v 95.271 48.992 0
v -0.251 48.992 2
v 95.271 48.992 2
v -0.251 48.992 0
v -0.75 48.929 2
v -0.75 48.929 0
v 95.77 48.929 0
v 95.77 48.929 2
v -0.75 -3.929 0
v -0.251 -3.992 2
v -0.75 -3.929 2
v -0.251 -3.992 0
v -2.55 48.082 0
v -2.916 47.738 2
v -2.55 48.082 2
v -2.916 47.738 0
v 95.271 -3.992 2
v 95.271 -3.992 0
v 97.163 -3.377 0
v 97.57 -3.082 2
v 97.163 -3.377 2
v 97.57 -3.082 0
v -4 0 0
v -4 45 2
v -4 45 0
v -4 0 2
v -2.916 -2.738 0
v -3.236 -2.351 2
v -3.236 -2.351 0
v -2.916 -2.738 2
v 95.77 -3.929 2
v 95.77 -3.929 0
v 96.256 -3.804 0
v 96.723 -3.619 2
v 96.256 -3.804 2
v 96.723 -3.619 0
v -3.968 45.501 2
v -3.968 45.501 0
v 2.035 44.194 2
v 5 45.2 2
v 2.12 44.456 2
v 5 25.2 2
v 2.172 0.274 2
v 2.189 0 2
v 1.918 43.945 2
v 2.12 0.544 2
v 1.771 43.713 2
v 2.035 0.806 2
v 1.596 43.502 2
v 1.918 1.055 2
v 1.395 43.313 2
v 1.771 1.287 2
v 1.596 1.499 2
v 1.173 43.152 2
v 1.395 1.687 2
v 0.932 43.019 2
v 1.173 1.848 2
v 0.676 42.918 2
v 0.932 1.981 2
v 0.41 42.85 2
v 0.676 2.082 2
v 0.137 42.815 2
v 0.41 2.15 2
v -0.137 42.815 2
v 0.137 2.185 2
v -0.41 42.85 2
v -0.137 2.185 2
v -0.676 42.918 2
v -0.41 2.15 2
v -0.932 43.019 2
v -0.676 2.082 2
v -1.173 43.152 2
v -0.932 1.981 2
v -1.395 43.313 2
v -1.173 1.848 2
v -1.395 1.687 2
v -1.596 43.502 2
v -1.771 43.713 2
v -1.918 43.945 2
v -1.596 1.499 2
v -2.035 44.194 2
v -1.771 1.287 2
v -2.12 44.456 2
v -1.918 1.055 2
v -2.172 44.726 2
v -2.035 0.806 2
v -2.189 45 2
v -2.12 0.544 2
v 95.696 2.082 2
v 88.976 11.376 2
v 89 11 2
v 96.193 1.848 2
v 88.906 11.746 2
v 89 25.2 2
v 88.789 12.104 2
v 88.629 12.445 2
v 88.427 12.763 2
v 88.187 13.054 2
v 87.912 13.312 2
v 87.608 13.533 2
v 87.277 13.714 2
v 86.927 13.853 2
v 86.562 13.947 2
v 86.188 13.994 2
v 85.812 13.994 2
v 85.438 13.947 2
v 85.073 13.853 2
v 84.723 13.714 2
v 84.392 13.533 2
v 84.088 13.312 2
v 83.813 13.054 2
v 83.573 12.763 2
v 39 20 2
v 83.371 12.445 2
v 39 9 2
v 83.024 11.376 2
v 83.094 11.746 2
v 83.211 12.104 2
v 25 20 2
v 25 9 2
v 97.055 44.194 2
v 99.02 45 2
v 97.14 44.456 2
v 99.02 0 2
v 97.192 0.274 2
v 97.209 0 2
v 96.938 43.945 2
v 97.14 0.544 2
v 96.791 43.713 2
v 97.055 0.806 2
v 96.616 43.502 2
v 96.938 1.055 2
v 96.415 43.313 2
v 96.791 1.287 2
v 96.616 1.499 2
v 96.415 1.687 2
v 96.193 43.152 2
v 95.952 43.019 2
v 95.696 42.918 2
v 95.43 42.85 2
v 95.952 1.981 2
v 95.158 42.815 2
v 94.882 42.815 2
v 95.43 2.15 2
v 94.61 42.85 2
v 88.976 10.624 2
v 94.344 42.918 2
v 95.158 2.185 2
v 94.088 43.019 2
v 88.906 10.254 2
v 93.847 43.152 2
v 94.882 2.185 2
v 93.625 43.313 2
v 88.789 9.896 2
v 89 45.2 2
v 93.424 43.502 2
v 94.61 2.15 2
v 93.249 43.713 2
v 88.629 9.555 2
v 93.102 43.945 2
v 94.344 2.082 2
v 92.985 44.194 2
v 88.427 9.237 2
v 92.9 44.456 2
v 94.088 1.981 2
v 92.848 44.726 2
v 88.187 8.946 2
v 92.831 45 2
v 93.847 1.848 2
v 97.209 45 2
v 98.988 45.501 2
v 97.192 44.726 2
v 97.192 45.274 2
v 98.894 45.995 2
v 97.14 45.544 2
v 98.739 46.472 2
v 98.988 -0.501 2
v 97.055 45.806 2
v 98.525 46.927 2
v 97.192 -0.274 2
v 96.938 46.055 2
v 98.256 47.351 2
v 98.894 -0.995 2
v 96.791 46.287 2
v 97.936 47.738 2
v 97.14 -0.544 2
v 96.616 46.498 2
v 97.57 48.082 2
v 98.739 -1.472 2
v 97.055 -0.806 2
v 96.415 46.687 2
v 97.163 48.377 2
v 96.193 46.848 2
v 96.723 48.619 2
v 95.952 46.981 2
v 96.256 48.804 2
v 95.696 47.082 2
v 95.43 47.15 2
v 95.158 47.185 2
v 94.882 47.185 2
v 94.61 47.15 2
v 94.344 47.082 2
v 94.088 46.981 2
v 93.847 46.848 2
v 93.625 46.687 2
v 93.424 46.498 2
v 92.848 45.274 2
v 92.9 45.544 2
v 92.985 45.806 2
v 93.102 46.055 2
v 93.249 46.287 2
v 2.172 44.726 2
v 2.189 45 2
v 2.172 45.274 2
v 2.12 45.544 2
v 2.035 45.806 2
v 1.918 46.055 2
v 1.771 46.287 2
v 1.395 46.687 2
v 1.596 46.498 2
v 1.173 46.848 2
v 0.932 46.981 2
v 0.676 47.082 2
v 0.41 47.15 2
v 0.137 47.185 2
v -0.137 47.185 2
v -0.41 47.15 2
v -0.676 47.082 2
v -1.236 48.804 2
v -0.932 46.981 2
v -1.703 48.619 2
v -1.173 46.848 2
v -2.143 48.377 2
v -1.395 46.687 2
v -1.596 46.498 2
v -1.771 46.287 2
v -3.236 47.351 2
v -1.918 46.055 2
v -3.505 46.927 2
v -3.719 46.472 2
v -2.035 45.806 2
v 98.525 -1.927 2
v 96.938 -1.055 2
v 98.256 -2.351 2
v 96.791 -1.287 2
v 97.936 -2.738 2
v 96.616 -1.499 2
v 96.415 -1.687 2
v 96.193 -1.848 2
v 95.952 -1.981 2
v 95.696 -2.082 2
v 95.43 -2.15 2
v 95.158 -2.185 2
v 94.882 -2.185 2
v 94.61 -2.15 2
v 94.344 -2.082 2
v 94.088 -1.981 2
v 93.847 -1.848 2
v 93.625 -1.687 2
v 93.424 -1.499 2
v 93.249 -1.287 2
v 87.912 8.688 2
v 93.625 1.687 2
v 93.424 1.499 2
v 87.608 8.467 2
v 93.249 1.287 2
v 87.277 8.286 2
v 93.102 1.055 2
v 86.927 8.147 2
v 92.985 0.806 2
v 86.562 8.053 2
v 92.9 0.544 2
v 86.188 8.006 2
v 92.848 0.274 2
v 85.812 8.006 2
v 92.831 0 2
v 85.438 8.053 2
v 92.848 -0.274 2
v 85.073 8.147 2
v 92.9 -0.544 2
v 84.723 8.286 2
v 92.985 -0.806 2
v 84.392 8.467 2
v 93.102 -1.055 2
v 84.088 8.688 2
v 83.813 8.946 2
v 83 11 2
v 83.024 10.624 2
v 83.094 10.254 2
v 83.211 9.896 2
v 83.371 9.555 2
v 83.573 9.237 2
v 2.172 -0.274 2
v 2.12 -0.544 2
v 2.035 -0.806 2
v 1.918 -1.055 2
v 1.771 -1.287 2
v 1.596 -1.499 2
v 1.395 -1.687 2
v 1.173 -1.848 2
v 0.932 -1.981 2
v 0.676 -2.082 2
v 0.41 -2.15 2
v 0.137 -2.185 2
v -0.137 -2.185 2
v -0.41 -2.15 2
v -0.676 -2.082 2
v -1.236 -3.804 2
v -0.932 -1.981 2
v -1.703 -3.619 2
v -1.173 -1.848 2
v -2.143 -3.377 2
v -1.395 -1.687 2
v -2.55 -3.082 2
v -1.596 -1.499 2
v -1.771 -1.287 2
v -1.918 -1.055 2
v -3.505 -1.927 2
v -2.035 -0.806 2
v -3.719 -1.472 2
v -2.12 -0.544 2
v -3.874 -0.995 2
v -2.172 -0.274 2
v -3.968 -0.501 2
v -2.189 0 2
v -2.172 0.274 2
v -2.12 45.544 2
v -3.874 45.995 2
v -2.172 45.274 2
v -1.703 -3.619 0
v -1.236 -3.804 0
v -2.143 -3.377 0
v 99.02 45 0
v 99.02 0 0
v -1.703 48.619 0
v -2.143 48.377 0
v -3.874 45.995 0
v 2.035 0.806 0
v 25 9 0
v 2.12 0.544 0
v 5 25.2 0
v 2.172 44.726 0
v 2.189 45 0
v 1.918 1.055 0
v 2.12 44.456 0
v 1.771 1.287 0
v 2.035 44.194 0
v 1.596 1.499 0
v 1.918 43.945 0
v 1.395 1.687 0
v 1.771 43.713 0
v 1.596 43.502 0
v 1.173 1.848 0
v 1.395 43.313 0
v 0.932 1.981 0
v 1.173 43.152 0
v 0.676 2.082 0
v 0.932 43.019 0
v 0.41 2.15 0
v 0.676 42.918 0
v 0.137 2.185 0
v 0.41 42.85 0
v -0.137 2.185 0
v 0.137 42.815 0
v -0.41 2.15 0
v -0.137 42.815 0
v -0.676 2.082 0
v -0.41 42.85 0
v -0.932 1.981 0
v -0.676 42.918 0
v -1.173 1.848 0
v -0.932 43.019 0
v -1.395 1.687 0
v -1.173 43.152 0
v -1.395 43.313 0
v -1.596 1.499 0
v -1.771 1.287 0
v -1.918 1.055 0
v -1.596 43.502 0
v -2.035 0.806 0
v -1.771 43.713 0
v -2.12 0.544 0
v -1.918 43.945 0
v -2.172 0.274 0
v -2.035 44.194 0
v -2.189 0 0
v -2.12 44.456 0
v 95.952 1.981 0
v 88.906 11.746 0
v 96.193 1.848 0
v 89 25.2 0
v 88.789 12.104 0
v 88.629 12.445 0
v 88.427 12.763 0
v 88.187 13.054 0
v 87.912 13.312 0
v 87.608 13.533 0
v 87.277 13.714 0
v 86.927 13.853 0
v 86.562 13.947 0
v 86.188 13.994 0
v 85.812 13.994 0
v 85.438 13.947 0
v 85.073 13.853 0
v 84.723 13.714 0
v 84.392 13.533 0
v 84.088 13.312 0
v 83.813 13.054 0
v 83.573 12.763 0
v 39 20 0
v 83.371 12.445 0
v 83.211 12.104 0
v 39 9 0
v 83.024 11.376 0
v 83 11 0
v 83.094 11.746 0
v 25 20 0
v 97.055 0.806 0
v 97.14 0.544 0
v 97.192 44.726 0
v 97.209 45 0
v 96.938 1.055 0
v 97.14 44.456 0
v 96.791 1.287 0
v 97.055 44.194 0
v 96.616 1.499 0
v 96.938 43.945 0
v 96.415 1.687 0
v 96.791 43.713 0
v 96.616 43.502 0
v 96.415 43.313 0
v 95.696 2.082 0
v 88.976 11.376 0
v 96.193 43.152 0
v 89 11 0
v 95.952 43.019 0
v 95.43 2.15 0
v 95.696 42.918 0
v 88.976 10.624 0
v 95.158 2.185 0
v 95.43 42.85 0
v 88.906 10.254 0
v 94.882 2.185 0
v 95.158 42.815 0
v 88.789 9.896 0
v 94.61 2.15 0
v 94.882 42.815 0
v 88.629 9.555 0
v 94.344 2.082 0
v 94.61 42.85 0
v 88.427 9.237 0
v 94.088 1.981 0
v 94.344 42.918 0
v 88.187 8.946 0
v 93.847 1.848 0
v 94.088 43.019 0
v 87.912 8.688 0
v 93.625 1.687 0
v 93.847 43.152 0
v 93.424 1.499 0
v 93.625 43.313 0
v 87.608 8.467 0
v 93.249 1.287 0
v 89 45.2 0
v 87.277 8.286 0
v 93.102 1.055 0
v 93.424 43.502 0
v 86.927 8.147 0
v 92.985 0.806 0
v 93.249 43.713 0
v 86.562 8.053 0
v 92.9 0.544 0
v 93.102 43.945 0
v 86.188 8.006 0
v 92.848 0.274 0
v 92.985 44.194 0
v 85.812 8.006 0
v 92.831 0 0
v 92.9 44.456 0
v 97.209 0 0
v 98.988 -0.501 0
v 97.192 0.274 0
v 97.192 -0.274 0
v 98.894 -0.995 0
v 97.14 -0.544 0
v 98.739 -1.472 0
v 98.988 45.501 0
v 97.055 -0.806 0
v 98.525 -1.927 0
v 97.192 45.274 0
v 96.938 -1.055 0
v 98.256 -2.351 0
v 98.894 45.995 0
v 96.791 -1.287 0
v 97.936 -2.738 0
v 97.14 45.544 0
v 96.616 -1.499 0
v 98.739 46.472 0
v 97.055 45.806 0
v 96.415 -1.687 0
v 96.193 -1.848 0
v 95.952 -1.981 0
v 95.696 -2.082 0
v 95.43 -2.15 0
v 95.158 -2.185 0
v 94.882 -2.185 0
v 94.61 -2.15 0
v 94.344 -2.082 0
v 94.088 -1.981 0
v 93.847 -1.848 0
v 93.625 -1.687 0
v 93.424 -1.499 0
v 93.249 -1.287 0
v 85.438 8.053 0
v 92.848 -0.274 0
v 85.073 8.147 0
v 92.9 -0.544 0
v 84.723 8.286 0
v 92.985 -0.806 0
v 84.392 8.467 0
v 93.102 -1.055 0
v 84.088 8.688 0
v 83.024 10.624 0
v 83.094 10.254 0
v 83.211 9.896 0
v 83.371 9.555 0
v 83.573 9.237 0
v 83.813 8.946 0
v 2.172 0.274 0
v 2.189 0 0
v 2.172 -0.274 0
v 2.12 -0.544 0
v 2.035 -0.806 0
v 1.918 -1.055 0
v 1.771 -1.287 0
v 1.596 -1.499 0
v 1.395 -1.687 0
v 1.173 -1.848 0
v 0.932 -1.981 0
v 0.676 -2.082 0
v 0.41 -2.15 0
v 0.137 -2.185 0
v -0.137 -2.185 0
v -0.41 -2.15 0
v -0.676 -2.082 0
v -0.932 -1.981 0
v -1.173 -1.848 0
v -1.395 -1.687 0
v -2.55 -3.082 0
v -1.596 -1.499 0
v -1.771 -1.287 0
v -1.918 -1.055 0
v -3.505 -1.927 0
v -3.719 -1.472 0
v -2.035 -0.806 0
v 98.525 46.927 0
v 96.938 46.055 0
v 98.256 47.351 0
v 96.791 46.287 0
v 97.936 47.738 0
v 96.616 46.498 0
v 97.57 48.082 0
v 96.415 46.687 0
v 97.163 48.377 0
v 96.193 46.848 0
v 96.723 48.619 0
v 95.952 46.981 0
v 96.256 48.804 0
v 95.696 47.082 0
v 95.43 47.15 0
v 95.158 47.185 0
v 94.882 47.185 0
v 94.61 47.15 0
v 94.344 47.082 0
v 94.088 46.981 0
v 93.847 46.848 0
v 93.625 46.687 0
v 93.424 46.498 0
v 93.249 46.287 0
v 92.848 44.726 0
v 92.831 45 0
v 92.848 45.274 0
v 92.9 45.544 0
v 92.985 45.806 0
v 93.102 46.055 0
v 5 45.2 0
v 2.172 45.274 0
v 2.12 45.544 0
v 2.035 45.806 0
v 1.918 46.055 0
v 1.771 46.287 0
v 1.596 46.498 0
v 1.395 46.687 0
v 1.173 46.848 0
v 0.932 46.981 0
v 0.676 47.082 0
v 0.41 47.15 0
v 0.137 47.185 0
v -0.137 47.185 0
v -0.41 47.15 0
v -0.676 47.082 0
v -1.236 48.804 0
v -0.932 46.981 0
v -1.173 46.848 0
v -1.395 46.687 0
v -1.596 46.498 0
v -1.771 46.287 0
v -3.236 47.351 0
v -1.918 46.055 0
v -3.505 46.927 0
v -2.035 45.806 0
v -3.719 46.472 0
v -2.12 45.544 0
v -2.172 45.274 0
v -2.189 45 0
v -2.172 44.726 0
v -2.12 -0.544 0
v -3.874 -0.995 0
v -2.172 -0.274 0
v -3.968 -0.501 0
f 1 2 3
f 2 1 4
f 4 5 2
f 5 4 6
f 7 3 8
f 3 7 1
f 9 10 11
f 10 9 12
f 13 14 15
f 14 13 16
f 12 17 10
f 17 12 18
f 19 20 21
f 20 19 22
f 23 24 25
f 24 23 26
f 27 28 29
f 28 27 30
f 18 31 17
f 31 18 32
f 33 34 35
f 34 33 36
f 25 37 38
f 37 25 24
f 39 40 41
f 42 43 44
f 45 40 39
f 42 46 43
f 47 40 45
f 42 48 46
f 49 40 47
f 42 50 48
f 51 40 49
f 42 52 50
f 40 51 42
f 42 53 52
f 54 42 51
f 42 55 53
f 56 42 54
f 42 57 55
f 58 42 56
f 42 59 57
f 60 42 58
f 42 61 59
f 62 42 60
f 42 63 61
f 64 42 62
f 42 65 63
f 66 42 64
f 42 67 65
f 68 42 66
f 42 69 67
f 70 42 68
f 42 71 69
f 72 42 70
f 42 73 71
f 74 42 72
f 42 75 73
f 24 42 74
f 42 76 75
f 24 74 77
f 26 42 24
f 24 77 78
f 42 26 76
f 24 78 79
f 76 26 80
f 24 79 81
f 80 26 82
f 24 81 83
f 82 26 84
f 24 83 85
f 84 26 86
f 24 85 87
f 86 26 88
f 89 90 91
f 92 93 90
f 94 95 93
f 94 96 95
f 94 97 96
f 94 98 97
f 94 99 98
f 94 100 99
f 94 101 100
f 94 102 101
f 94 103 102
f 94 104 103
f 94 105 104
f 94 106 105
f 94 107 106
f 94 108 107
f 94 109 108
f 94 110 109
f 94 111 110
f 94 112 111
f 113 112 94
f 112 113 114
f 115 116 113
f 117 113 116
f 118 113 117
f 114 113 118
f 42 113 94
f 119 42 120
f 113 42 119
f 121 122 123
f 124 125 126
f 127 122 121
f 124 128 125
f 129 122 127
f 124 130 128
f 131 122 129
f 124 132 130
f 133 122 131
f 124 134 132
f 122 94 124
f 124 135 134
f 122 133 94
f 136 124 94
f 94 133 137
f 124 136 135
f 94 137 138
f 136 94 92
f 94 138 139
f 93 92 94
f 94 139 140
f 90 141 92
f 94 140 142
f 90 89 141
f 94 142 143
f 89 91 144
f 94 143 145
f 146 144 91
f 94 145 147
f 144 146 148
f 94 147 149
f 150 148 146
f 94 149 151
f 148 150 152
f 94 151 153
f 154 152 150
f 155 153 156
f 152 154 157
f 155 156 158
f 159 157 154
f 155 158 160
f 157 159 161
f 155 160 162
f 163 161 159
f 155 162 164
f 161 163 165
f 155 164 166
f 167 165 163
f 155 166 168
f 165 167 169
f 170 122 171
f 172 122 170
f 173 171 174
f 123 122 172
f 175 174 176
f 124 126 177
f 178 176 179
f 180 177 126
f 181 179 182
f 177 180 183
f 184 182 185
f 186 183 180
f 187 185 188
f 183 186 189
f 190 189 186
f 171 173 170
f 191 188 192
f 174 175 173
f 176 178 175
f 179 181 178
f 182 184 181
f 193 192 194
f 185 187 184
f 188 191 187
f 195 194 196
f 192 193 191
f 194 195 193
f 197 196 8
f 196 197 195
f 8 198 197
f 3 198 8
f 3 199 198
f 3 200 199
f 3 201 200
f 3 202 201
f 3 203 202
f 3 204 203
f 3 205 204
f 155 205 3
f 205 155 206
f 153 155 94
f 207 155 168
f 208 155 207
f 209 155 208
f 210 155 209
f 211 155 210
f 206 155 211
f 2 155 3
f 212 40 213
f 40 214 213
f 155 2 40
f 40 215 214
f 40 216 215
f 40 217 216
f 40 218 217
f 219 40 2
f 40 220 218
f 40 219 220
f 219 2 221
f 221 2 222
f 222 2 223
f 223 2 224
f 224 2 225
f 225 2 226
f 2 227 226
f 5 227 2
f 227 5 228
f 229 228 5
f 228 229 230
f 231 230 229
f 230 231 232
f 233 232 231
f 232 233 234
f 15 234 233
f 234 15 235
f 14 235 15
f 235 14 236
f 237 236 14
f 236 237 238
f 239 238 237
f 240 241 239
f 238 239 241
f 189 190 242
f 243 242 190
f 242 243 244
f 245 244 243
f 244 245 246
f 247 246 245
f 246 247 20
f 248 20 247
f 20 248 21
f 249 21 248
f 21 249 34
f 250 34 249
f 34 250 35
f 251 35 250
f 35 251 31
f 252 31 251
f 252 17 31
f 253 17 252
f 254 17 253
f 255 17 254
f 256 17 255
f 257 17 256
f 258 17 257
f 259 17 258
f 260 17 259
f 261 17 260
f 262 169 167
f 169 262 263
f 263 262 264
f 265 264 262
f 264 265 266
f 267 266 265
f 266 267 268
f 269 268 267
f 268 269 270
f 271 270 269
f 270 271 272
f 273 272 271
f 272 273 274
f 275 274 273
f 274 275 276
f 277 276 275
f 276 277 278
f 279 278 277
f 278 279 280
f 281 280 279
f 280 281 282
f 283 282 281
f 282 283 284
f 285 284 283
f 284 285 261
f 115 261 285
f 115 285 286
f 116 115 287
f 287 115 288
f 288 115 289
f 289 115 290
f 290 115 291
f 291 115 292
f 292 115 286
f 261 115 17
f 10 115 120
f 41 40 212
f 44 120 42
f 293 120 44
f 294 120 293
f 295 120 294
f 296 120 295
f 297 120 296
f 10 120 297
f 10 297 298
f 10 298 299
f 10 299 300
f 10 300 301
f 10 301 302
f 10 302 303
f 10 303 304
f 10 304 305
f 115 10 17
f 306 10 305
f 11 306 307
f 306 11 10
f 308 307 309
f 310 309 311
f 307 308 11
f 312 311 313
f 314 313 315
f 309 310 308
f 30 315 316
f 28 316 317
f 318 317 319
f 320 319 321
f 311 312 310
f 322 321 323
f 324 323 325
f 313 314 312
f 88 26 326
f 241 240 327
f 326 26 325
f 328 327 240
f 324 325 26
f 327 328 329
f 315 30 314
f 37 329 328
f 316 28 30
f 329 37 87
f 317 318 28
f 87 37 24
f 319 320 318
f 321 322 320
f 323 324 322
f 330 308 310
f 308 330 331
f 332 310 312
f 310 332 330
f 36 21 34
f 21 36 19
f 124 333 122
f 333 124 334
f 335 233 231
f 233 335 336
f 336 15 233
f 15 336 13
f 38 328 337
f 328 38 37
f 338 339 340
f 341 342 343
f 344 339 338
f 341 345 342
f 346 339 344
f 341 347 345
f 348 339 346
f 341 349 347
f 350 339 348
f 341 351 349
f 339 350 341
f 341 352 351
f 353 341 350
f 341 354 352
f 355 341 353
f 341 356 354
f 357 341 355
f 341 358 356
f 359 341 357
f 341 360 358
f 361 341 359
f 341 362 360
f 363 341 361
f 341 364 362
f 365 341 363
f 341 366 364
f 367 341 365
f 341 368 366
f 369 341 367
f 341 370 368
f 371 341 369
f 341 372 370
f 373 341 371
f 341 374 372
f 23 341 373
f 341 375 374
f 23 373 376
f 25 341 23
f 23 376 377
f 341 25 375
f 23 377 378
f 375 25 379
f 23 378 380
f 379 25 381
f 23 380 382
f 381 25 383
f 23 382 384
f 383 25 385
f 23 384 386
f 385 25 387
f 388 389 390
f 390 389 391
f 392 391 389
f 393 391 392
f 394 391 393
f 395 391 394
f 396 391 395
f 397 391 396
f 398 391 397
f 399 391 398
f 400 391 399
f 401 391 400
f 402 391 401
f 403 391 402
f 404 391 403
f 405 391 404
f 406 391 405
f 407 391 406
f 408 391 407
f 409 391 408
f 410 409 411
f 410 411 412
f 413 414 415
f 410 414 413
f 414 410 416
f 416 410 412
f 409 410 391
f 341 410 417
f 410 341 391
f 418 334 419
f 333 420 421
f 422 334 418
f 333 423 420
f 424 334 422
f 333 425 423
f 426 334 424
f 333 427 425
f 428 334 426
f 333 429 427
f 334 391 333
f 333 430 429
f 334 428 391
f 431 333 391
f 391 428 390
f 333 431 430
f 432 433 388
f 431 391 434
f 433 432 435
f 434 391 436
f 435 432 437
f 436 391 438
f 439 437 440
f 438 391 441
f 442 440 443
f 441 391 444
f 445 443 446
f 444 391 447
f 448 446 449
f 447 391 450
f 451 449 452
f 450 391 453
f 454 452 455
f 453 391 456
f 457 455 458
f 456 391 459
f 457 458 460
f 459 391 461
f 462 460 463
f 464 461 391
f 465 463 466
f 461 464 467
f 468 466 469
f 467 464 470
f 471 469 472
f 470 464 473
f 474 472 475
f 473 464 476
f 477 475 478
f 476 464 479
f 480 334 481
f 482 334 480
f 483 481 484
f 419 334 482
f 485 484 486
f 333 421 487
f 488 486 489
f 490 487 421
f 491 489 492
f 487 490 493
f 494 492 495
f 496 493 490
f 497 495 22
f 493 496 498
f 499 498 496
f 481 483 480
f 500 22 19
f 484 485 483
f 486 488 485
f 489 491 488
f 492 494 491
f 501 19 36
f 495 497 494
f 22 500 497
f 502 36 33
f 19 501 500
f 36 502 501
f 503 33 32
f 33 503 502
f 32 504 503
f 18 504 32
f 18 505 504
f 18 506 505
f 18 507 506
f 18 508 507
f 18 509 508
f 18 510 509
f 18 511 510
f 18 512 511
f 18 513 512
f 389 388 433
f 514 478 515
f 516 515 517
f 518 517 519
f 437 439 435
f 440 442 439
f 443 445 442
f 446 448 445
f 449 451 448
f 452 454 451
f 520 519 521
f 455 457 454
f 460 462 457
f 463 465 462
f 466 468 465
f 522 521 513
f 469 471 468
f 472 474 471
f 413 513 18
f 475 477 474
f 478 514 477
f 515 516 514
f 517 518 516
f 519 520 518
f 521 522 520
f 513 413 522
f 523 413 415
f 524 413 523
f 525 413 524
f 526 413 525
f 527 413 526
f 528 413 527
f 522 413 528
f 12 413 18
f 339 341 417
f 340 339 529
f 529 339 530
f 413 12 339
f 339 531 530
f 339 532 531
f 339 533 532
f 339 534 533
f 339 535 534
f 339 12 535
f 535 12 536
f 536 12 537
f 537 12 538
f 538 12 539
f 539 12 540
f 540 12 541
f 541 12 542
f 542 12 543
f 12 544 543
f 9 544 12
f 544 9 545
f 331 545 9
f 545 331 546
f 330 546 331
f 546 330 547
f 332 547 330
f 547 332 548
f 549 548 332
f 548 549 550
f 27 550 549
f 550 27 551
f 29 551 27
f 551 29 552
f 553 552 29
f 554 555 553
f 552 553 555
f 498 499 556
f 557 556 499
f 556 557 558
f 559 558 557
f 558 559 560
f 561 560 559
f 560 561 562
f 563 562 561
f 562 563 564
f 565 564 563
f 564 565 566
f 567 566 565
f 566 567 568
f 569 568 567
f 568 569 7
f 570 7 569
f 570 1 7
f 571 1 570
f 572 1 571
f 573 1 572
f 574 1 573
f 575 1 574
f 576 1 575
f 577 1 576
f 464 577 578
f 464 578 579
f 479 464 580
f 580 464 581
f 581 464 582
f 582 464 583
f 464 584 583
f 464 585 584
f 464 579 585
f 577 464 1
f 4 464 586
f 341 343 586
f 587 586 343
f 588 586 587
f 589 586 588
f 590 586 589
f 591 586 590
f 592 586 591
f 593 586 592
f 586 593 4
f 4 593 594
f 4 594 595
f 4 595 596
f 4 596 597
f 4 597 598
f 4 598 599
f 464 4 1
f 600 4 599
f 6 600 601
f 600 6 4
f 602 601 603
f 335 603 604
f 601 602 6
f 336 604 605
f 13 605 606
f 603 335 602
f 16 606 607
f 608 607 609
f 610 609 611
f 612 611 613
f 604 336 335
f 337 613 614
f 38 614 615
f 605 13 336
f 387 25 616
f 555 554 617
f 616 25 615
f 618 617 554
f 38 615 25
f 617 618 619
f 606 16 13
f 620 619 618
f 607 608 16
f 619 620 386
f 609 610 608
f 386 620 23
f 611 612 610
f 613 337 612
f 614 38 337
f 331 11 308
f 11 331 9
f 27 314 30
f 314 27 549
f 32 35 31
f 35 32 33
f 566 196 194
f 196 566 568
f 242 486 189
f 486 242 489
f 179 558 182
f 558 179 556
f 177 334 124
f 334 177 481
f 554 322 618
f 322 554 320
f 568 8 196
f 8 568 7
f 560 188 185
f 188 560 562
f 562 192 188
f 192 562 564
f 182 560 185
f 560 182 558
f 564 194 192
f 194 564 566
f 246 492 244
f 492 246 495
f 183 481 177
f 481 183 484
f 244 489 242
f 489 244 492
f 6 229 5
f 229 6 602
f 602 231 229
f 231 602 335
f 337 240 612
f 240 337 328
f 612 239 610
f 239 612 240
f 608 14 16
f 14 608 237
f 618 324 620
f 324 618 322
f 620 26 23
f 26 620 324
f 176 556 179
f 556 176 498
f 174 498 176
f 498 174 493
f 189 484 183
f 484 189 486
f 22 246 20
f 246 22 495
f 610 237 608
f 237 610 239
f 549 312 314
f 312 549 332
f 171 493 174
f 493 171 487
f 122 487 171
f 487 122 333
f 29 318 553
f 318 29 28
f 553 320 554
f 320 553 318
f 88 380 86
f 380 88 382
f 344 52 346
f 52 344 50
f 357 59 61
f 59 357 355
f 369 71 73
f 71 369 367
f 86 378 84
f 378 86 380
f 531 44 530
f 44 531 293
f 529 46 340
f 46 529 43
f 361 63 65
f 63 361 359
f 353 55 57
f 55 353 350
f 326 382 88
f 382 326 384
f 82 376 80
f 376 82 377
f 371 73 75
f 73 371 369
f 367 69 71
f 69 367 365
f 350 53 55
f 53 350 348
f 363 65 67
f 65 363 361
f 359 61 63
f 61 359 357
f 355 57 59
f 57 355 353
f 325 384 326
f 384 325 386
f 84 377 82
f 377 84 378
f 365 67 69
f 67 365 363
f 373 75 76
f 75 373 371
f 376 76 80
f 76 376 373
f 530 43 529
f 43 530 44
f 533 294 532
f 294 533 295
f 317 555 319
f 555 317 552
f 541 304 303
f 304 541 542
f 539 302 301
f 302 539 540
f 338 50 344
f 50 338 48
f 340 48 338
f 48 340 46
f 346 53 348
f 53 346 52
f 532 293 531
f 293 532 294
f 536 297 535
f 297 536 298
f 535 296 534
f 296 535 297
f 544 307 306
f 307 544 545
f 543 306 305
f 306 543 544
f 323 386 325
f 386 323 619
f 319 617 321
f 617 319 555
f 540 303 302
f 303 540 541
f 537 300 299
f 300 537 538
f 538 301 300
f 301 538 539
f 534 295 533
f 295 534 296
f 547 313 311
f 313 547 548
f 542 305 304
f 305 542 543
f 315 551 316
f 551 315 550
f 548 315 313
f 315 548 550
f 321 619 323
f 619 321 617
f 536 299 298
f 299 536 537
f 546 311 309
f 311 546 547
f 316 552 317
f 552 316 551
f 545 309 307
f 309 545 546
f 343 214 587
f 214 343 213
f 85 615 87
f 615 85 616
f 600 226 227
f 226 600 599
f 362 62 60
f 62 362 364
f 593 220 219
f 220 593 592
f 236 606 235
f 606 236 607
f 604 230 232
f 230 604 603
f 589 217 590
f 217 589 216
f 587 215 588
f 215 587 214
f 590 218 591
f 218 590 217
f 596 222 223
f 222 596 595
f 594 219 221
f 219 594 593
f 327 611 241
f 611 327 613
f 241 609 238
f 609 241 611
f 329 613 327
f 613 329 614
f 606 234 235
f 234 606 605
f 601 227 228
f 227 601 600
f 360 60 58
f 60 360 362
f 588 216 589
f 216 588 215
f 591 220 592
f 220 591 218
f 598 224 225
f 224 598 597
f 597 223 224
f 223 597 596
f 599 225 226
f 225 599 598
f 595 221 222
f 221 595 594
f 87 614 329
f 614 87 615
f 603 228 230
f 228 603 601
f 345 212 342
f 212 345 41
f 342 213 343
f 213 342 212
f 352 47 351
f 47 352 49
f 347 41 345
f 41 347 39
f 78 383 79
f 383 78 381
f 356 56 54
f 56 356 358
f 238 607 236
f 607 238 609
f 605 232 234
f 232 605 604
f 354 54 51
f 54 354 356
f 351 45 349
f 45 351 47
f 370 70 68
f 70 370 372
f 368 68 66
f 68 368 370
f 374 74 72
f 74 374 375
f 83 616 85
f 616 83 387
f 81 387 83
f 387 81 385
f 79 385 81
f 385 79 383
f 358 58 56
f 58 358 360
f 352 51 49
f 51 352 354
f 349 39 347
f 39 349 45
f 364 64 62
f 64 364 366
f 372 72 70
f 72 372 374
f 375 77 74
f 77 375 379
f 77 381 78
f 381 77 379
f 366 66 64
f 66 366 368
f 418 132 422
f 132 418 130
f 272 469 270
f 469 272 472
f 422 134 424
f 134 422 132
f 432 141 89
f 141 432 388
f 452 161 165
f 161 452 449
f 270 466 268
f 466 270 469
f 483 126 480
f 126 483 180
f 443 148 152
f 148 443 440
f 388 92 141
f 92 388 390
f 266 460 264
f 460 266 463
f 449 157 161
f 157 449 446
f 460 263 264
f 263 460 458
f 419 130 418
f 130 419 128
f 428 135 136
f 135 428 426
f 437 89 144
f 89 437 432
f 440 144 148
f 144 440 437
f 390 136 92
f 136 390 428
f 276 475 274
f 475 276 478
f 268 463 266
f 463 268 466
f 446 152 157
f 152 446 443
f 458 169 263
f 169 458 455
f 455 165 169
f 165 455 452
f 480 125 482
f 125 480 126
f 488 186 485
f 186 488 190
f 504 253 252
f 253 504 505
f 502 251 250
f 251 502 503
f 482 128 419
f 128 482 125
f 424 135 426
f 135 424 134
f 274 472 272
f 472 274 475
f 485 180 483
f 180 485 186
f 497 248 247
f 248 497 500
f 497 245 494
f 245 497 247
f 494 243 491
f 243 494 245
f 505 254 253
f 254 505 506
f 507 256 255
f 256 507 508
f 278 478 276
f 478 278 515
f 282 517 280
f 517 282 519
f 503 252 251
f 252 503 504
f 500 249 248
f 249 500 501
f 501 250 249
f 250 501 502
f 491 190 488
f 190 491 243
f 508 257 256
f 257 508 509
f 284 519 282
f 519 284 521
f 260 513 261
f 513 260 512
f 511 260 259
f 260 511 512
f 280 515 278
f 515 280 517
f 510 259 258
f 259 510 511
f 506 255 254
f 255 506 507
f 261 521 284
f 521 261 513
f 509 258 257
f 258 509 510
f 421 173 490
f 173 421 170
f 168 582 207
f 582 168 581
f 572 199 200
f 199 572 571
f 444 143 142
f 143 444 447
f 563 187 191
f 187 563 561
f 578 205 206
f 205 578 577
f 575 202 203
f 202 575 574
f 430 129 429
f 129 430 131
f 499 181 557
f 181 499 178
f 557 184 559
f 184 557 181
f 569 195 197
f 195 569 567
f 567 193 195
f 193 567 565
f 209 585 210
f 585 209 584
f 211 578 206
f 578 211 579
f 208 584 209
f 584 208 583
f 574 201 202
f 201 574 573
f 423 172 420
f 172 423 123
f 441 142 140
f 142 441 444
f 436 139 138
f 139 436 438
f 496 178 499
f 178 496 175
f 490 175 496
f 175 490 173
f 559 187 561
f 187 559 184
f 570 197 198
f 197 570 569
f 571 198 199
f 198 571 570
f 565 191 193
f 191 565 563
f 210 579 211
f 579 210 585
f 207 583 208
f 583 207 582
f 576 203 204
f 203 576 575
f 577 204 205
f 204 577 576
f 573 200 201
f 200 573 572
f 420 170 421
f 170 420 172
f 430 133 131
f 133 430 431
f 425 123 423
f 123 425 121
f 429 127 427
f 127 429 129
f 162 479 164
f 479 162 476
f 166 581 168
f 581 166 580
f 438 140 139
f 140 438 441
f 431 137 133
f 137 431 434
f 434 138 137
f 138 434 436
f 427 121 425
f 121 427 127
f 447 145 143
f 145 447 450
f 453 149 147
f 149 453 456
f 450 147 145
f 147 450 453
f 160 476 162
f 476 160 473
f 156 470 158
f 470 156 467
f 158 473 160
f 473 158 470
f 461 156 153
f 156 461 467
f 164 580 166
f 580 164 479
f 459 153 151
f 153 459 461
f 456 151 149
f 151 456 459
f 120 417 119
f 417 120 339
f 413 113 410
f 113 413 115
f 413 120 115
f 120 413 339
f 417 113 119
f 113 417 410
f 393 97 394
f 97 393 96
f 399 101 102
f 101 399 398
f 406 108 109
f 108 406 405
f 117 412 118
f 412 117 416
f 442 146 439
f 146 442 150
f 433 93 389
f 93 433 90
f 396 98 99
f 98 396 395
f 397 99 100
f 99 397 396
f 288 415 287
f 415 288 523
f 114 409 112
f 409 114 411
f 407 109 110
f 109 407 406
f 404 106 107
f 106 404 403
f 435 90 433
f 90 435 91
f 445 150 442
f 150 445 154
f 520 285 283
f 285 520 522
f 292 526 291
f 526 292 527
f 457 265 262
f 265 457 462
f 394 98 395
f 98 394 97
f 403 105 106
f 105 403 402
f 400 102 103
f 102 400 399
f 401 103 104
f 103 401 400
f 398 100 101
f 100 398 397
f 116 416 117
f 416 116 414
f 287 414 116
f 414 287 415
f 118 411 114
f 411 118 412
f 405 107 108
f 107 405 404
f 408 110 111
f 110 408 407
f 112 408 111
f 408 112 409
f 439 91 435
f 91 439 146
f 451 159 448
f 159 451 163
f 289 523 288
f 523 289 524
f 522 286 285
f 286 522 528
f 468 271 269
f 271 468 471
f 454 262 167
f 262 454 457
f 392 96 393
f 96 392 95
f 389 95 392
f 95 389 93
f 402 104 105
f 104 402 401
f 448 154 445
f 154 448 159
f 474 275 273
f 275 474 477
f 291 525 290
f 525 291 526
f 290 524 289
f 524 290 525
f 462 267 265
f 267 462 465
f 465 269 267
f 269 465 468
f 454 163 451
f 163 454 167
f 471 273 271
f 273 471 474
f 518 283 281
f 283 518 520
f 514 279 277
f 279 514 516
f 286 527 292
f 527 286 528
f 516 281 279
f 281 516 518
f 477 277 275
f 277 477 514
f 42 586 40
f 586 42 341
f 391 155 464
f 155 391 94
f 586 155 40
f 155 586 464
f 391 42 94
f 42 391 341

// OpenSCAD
$fn=50;
height=1;
hole_radius=(3.3782/2)+0.5;
corner_radius=4.00;
//hole_radius=(3.3782/1);

module plate()
{
    difference()
    {
        //Basic outline
        minkowski() {
            cube([95.02,45,height]);
            // rounded corners
            cylinder(r=corner_radius,h=height);
        }

        //Holes
        translate([0,0,-5])    cylinder(r=hole_radius, h=10);
        translate([0,45,-5])    cylinder(r=hole_radius, h=10);
        translate([95.02,0,-5])    cylinder(r=hole_radius, h=10);
        translate([95.02,45,-5])    cylinder(r=hole_radius, h=10);
        
        //USB cutout
        USB_height = 11;
        translate([-corner_radius+29.3,-corner_radius+13,-5])	cube([14,USB_height,10]);
        
        //MAP cutout
        //translate([20,110,screw_window_z+screw_window_height/2-2])	rotate ([90,0,0])   cylinder(r=3,h=screw_window_height);
        translate([-corner_radius+90,-corner_radius+15,-5])	cylinder(r=3,h=10);
        
        //Main loom cutout
        loom_width=84;
        loom_height=20;
        translate([-corner_radius+9,-corner_radius+29.2,-5])    cube([84,20,10]);
        

    } //difference()
}

//projection(cut = true) plate(); //2D projection
plate(); //3D model
